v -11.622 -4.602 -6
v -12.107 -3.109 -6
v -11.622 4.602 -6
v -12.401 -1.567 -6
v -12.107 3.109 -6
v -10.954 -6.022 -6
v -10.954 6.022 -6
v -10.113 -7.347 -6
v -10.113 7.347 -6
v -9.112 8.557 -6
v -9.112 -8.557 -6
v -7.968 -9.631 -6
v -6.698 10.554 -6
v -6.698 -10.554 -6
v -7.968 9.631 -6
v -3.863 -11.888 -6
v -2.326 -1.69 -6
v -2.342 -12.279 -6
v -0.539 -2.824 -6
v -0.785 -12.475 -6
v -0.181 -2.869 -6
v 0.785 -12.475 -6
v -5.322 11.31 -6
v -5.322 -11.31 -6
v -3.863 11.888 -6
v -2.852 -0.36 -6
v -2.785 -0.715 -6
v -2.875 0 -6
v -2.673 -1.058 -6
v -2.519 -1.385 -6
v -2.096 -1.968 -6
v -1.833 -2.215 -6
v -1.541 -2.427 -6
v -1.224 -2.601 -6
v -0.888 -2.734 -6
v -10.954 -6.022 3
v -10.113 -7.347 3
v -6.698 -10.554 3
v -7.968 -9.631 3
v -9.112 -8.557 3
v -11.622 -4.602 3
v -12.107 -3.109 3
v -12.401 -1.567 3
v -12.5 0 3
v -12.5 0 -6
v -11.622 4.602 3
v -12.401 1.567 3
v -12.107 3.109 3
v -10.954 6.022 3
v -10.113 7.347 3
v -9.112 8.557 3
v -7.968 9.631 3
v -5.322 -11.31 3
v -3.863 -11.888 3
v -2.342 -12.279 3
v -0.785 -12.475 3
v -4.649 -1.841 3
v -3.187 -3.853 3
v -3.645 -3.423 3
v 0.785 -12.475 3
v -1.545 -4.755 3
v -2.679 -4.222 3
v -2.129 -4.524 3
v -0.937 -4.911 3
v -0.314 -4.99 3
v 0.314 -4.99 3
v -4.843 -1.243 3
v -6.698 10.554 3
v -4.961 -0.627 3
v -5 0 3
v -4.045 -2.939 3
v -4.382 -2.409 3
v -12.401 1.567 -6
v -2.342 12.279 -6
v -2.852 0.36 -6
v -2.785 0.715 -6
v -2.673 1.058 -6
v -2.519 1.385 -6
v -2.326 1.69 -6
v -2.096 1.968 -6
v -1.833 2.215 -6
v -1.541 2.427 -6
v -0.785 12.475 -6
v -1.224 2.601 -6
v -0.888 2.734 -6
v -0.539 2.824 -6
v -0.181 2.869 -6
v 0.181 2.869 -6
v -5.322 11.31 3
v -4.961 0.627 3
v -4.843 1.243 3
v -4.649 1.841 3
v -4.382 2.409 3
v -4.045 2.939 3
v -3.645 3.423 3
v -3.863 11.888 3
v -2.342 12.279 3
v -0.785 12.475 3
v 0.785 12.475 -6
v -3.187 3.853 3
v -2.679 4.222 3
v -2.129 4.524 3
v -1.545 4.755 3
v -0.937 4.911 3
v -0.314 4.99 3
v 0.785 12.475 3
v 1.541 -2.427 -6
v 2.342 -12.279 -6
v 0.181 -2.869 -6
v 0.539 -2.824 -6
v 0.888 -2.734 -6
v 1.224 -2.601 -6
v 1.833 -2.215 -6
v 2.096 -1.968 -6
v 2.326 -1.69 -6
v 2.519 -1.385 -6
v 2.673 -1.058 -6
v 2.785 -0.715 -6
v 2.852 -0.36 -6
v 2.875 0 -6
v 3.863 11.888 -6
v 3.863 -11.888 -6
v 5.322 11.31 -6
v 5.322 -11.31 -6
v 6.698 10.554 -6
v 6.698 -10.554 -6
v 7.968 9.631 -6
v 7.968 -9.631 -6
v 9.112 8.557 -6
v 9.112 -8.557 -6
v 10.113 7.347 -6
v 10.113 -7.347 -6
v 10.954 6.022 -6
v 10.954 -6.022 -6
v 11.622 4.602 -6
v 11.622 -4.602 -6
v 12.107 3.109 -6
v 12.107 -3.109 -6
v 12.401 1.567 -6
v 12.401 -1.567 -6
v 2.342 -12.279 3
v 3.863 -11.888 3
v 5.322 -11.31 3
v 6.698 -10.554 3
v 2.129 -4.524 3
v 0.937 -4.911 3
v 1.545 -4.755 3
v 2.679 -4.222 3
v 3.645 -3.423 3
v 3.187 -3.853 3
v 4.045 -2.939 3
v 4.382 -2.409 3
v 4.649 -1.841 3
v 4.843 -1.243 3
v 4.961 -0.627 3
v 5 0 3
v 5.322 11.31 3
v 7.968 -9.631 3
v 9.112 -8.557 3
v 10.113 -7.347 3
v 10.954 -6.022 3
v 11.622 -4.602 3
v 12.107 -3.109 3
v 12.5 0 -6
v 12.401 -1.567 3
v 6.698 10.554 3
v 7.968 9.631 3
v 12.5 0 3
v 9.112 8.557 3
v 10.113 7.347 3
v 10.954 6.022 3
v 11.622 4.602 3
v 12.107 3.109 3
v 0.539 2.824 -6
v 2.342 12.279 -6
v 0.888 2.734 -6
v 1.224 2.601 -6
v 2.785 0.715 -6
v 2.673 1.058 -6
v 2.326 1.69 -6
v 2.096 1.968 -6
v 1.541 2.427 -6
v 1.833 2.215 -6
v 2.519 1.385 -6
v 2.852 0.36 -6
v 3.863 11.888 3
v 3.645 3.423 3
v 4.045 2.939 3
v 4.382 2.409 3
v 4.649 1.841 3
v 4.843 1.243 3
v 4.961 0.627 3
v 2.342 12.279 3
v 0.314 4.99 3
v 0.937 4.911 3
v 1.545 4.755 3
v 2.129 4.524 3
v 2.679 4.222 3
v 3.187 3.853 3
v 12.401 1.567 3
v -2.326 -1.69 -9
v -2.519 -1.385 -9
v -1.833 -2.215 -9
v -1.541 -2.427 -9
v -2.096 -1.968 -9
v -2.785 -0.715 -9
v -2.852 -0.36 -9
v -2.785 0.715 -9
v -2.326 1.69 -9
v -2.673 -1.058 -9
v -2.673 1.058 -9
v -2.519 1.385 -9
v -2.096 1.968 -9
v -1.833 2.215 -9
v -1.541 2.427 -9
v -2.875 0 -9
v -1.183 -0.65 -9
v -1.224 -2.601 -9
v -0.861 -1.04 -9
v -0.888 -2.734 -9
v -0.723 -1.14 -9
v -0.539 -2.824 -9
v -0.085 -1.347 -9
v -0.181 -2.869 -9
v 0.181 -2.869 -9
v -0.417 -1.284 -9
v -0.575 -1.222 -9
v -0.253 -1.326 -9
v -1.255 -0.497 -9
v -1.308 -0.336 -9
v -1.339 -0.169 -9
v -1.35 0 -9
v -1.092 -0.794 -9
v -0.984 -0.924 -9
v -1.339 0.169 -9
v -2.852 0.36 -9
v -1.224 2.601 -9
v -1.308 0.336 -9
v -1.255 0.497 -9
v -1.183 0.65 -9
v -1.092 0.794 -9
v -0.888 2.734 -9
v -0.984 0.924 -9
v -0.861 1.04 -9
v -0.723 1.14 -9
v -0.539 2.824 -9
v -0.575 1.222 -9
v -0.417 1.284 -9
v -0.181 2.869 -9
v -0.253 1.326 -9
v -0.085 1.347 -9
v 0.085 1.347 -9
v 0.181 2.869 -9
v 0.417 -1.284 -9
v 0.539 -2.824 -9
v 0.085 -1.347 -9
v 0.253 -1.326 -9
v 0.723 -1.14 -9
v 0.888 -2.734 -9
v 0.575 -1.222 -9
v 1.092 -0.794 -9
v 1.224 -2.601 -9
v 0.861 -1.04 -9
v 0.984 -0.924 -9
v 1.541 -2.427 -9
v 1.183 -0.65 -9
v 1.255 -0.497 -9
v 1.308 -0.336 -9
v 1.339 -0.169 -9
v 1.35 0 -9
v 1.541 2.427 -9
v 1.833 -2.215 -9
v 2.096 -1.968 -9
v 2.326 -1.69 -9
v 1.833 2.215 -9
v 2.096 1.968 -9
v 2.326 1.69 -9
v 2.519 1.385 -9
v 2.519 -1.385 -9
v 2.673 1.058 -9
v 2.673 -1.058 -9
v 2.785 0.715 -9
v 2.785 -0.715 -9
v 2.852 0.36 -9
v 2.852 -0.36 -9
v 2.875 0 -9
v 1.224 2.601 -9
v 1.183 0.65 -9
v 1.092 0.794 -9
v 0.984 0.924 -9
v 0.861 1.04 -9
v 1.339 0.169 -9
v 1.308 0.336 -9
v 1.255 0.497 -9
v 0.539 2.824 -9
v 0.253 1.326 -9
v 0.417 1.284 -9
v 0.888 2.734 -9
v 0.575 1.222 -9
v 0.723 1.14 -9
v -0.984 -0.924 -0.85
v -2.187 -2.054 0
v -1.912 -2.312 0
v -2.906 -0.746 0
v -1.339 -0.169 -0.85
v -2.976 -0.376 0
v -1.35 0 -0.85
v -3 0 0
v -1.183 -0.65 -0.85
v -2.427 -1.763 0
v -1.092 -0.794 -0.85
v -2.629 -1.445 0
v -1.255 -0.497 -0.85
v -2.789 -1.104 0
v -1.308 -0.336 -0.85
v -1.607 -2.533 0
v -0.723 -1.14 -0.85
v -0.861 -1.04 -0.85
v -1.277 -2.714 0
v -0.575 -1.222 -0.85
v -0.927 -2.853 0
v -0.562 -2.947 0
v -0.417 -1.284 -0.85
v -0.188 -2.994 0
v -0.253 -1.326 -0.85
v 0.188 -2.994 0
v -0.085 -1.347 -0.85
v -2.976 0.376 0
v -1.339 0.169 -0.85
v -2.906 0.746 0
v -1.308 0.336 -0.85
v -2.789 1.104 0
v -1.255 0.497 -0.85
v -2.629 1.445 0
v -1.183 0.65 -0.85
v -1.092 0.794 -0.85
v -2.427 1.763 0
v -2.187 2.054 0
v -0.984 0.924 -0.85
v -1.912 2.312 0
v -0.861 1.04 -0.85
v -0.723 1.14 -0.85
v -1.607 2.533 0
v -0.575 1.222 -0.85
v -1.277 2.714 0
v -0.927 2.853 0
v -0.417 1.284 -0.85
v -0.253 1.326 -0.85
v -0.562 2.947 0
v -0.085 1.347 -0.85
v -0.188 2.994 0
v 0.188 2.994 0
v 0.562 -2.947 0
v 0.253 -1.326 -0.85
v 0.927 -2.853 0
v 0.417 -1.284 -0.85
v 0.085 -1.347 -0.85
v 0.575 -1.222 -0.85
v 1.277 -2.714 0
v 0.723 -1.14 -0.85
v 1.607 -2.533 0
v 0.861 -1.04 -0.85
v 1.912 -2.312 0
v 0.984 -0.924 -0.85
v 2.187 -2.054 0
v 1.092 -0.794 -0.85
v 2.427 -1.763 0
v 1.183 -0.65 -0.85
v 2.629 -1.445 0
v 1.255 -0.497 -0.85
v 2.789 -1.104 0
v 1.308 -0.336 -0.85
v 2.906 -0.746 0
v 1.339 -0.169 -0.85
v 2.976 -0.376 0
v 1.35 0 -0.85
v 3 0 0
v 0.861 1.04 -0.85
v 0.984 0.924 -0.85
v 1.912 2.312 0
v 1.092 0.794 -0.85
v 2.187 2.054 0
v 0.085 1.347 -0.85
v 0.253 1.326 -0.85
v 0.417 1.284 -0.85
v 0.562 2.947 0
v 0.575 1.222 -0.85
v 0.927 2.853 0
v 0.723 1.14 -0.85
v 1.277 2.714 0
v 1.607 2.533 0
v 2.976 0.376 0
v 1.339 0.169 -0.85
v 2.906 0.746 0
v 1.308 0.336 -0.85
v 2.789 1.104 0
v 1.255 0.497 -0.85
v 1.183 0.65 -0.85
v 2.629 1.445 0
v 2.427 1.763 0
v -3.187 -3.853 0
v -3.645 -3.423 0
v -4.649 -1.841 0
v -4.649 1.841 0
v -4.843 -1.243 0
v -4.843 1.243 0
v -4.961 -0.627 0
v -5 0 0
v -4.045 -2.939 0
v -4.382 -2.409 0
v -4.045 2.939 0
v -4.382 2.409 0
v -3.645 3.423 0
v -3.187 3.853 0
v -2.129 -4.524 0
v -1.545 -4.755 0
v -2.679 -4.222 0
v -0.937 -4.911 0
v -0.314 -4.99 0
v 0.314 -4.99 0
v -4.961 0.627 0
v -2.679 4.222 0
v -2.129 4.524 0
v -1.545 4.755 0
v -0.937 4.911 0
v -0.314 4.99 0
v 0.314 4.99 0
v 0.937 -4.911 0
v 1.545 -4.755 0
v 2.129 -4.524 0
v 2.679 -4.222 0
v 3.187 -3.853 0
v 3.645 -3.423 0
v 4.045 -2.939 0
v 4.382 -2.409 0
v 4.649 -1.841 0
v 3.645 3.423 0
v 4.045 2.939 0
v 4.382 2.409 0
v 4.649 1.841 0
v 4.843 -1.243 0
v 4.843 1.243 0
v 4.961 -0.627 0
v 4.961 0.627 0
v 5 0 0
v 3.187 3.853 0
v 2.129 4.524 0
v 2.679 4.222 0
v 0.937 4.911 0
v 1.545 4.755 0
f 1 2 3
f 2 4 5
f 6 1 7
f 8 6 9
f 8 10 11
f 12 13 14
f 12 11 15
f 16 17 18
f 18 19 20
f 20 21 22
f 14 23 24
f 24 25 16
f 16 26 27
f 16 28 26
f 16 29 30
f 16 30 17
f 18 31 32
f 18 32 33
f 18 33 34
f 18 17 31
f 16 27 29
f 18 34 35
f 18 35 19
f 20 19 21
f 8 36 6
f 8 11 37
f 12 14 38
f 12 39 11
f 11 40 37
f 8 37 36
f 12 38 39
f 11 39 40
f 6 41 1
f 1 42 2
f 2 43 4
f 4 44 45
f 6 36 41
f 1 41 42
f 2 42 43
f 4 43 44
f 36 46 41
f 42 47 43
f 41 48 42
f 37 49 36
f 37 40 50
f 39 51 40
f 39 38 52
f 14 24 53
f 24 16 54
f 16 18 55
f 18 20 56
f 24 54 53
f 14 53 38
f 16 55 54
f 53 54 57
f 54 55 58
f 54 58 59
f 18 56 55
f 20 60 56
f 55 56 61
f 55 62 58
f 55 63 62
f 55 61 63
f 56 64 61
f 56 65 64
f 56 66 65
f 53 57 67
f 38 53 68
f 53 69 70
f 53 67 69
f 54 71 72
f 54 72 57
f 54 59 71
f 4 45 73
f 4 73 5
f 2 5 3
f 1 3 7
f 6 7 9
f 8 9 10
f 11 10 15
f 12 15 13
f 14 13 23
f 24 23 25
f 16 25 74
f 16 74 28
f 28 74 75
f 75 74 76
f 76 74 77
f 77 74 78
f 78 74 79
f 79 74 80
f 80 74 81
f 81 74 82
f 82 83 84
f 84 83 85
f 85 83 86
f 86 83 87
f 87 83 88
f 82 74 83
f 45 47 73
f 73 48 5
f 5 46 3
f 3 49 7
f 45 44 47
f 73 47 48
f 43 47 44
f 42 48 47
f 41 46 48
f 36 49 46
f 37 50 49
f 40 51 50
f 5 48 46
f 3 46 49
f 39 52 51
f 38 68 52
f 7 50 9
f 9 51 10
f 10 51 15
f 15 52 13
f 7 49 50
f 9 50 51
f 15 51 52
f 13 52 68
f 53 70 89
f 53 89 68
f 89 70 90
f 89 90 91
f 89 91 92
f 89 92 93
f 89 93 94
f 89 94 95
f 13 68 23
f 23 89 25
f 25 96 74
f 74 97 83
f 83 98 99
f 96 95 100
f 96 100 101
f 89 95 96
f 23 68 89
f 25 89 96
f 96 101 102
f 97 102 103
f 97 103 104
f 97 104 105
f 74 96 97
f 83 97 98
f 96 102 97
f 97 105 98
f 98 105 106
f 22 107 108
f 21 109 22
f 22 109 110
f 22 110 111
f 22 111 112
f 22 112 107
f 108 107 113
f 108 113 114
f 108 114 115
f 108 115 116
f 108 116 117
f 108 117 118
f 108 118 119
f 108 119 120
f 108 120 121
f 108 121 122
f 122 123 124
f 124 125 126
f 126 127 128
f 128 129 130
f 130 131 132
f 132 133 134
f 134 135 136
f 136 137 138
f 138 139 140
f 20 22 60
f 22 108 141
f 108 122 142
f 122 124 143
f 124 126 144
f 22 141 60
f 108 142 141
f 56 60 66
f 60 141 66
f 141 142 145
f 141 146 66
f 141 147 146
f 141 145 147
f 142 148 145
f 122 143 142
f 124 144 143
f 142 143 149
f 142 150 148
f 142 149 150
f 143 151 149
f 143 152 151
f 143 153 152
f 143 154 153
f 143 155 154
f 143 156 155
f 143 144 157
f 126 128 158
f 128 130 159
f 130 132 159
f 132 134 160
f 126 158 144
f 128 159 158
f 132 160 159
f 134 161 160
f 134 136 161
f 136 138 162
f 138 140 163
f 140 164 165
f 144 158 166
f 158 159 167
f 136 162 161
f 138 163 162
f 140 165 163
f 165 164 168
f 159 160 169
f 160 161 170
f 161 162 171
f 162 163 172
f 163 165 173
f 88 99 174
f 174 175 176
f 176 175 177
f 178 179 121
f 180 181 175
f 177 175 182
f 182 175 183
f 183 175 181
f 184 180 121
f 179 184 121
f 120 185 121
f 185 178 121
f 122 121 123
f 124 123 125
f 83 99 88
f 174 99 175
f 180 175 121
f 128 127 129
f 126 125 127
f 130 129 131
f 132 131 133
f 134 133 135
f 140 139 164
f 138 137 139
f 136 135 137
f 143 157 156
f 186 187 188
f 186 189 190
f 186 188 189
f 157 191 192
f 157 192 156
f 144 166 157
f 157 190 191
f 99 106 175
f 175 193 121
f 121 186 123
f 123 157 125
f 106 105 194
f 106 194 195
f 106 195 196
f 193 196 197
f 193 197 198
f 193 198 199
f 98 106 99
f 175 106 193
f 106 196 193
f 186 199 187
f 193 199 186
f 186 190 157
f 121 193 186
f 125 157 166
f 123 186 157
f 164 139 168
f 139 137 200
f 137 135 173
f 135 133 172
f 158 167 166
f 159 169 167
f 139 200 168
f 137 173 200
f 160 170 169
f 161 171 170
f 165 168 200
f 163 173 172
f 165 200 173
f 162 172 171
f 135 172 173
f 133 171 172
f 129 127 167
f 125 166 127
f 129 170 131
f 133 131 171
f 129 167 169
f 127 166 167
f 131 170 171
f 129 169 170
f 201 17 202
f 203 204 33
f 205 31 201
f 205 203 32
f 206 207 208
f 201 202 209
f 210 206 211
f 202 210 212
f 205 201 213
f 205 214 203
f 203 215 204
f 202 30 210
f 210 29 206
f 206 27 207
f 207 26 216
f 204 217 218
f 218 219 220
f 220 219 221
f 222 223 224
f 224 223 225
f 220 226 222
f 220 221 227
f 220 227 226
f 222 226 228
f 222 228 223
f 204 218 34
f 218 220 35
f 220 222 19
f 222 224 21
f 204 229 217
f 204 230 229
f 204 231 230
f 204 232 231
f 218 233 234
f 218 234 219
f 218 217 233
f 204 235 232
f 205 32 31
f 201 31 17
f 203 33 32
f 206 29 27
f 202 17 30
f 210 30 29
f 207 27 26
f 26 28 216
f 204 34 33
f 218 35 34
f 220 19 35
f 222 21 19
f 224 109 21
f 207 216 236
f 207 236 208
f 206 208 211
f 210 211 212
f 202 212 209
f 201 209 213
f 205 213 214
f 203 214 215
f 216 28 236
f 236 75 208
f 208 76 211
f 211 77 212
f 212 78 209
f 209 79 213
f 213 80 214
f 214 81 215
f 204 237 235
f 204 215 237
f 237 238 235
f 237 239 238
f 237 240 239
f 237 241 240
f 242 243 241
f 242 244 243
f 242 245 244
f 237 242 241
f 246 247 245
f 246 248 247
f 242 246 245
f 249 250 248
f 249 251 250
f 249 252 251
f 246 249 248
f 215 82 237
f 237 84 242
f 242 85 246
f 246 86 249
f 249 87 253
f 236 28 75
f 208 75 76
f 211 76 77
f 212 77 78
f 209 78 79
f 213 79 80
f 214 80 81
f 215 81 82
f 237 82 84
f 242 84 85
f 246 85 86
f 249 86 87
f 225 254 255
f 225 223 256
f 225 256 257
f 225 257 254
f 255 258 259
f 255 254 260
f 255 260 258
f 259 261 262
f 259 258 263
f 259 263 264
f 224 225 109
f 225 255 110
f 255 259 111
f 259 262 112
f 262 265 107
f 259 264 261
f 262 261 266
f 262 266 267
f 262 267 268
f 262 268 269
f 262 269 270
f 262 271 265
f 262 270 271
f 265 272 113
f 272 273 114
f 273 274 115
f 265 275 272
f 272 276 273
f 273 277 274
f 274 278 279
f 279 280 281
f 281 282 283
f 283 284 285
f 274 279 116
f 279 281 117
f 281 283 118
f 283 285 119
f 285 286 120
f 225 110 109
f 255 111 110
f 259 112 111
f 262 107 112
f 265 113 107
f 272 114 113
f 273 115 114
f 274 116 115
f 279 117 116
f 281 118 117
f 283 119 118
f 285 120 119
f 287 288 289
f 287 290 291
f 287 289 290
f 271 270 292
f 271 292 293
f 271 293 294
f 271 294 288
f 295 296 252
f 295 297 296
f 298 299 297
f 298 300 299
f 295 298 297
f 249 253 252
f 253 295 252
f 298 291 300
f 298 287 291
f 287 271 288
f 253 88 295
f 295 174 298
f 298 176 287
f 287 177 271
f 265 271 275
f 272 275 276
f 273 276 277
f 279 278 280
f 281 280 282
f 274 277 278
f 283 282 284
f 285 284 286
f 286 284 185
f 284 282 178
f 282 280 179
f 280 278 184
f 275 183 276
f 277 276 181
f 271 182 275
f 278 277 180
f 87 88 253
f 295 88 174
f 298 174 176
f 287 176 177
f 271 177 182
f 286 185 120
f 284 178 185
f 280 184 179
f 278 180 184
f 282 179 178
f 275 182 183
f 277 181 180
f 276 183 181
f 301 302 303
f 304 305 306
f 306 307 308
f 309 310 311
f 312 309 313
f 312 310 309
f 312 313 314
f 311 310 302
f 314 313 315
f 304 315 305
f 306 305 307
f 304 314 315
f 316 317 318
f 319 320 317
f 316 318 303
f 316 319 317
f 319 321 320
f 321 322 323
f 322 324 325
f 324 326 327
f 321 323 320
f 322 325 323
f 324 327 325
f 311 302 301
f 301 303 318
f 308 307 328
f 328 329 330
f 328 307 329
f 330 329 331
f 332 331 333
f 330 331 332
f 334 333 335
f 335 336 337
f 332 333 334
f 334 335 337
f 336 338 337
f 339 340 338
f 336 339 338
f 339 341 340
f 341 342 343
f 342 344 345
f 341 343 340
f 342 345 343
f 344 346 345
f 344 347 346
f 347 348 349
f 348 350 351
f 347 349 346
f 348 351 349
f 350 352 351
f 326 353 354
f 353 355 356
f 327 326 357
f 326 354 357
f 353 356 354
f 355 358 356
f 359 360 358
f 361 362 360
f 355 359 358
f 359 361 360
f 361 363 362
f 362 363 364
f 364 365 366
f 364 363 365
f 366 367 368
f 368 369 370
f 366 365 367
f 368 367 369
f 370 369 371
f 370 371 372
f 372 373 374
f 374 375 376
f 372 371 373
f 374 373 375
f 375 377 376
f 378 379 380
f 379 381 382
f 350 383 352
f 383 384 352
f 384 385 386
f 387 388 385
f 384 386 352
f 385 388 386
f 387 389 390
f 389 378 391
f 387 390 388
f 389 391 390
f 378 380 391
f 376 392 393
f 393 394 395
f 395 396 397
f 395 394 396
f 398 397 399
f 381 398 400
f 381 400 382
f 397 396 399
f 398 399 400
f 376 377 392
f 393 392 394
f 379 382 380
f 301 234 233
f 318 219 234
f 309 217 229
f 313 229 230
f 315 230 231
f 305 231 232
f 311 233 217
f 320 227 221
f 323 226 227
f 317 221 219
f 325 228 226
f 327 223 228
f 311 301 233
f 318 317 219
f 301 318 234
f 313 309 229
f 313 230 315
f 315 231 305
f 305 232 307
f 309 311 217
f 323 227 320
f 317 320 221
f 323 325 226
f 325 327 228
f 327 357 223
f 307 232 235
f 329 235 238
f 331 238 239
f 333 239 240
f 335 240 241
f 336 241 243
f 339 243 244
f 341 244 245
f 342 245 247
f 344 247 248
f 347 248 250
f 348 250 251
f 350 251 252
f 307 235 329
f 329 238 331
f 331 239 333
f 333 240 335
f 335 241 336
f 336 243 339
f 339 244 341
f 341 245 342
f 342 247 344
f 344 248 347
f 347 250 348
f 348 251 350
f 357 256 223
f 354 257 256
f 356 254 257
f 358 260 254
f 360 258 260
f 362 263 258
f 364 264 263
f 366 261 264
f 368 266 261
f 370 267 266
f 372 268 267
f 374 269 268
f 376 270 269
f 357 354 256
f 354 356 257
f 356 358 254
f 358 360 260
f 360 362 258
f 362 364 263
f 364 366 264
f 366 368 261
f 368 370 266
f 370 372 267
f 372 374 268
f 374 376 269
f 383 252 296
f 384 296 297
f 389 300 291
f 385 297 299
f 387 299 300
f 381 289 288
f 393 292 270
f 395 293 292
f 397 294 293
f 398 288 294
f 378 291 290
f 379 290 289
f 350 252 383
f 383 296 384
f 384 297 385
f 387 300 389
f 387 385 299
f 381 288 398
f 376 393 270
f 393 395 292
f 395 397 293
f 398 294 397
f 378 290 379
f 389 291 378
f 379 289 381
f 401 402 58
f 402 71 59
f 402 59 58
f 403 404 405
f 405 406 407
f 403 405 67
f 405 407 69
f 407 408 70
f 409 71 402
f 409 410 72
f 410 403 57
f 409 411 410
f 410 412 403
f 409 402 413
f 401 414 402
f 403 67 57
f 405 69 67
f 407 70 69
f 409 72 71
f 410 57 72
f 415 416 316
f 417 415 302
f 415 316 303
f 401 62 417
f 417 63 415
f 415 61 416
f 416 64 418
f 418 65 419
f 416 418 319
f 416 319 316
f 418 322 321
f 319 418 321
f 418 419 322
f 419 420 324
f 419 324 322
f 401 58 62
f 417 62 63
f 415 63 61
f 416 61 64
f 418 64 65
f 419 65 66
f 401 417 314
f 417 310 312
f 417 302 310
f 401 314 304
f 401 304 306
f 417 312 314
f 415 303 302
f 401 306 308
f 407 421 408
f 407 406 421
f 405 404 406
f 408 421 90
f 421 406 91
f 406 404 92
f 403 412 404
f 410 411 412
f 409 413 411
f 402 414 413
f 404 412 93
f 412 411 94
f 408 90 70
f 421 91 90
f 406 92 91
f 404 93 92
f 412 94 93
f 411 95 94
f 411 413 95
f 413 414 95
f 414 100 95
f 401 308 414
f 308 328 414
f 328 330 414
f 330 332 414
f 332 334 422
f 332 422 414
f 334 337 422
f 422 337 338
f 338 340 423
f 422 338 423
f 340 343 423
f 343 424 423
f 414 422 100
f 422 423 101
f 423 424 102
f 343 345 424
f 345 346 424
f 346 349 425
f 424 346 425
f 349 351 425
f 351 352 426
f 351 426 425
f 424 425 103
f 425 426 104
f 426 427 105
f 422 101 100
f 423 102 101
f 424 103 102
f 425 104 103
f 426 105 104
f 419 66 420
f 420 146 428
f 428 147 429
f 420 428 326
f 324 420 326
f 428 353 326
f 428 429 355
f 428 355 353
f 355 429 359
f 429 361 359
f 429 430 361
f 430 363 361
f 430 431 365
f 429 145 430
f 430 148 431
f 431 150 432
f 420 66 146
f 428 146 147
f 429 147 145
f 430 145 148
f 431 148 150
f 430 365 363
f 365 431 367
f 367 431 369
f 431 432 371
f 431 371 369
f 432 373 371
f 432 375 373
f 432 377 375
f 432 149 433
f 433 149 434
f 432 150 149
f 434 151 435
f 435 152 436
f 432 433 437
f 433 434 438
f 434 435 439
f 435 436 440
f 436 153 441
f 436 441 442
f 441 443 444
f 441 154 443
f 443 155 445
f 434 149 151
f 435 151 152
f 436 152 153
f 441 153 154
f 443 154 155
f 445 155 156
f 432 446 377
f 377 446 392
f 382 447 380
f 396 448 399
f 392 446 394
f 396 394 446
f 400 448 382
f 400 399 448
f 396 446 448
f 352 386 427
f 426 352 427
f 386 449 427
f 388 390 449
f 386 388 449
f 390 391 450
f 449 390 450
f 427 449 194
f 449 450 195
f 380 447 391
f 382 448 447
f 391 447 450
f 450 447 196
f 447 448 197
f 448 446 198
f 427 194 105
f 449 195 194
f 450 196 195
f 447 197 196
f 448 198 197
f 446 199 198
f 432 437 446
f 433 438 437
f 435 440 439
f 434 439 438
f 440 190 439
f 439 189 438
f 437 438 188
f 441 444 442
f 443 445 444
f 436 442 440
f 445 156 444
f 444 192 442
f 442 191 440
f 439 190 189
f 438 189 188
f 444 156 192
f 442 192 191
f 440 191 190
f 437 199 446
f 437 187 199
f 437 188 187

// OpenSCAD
$fn = 50;


difference() {
	union() {
		translate(v = [0, 0, -6.0000000000]) {
			cylinder(h = 9, r = 12.5000000000);
		}
		#translate(v = [0, 0, -9.0000000000]) {
			cylinder(h = 9, r = 2.8750000000);
		}
	}
	union() {
		translate(v = [0, 0, 0]) {
			rotate(a = [0, 0, 0]) {
				difference() {
					union() {
						translate(v = [0, 0, -9.0000000000]) {
							cylinder(h = 9, r = 1.0000000000);
						}
						translate(v = [0, 0, -0.8500000000]) {
							cylinder(h = 0.8500000000, r1 = 1.3500000000, r2 = 3.0000000000);
						}
						translate(v = [0, 0, -9.0000000000]) {
							cylinder(h = 9, r = 1.3500000000);
						}
						translate(v = [0, 0, -9.0000000000]) {
							cylinder(h = 9, r = 1.0000000000);
						}
					}
					union();
				}
			}
		}
		#cylinder(h = 3, r = 5.0000000000);
	}
}
